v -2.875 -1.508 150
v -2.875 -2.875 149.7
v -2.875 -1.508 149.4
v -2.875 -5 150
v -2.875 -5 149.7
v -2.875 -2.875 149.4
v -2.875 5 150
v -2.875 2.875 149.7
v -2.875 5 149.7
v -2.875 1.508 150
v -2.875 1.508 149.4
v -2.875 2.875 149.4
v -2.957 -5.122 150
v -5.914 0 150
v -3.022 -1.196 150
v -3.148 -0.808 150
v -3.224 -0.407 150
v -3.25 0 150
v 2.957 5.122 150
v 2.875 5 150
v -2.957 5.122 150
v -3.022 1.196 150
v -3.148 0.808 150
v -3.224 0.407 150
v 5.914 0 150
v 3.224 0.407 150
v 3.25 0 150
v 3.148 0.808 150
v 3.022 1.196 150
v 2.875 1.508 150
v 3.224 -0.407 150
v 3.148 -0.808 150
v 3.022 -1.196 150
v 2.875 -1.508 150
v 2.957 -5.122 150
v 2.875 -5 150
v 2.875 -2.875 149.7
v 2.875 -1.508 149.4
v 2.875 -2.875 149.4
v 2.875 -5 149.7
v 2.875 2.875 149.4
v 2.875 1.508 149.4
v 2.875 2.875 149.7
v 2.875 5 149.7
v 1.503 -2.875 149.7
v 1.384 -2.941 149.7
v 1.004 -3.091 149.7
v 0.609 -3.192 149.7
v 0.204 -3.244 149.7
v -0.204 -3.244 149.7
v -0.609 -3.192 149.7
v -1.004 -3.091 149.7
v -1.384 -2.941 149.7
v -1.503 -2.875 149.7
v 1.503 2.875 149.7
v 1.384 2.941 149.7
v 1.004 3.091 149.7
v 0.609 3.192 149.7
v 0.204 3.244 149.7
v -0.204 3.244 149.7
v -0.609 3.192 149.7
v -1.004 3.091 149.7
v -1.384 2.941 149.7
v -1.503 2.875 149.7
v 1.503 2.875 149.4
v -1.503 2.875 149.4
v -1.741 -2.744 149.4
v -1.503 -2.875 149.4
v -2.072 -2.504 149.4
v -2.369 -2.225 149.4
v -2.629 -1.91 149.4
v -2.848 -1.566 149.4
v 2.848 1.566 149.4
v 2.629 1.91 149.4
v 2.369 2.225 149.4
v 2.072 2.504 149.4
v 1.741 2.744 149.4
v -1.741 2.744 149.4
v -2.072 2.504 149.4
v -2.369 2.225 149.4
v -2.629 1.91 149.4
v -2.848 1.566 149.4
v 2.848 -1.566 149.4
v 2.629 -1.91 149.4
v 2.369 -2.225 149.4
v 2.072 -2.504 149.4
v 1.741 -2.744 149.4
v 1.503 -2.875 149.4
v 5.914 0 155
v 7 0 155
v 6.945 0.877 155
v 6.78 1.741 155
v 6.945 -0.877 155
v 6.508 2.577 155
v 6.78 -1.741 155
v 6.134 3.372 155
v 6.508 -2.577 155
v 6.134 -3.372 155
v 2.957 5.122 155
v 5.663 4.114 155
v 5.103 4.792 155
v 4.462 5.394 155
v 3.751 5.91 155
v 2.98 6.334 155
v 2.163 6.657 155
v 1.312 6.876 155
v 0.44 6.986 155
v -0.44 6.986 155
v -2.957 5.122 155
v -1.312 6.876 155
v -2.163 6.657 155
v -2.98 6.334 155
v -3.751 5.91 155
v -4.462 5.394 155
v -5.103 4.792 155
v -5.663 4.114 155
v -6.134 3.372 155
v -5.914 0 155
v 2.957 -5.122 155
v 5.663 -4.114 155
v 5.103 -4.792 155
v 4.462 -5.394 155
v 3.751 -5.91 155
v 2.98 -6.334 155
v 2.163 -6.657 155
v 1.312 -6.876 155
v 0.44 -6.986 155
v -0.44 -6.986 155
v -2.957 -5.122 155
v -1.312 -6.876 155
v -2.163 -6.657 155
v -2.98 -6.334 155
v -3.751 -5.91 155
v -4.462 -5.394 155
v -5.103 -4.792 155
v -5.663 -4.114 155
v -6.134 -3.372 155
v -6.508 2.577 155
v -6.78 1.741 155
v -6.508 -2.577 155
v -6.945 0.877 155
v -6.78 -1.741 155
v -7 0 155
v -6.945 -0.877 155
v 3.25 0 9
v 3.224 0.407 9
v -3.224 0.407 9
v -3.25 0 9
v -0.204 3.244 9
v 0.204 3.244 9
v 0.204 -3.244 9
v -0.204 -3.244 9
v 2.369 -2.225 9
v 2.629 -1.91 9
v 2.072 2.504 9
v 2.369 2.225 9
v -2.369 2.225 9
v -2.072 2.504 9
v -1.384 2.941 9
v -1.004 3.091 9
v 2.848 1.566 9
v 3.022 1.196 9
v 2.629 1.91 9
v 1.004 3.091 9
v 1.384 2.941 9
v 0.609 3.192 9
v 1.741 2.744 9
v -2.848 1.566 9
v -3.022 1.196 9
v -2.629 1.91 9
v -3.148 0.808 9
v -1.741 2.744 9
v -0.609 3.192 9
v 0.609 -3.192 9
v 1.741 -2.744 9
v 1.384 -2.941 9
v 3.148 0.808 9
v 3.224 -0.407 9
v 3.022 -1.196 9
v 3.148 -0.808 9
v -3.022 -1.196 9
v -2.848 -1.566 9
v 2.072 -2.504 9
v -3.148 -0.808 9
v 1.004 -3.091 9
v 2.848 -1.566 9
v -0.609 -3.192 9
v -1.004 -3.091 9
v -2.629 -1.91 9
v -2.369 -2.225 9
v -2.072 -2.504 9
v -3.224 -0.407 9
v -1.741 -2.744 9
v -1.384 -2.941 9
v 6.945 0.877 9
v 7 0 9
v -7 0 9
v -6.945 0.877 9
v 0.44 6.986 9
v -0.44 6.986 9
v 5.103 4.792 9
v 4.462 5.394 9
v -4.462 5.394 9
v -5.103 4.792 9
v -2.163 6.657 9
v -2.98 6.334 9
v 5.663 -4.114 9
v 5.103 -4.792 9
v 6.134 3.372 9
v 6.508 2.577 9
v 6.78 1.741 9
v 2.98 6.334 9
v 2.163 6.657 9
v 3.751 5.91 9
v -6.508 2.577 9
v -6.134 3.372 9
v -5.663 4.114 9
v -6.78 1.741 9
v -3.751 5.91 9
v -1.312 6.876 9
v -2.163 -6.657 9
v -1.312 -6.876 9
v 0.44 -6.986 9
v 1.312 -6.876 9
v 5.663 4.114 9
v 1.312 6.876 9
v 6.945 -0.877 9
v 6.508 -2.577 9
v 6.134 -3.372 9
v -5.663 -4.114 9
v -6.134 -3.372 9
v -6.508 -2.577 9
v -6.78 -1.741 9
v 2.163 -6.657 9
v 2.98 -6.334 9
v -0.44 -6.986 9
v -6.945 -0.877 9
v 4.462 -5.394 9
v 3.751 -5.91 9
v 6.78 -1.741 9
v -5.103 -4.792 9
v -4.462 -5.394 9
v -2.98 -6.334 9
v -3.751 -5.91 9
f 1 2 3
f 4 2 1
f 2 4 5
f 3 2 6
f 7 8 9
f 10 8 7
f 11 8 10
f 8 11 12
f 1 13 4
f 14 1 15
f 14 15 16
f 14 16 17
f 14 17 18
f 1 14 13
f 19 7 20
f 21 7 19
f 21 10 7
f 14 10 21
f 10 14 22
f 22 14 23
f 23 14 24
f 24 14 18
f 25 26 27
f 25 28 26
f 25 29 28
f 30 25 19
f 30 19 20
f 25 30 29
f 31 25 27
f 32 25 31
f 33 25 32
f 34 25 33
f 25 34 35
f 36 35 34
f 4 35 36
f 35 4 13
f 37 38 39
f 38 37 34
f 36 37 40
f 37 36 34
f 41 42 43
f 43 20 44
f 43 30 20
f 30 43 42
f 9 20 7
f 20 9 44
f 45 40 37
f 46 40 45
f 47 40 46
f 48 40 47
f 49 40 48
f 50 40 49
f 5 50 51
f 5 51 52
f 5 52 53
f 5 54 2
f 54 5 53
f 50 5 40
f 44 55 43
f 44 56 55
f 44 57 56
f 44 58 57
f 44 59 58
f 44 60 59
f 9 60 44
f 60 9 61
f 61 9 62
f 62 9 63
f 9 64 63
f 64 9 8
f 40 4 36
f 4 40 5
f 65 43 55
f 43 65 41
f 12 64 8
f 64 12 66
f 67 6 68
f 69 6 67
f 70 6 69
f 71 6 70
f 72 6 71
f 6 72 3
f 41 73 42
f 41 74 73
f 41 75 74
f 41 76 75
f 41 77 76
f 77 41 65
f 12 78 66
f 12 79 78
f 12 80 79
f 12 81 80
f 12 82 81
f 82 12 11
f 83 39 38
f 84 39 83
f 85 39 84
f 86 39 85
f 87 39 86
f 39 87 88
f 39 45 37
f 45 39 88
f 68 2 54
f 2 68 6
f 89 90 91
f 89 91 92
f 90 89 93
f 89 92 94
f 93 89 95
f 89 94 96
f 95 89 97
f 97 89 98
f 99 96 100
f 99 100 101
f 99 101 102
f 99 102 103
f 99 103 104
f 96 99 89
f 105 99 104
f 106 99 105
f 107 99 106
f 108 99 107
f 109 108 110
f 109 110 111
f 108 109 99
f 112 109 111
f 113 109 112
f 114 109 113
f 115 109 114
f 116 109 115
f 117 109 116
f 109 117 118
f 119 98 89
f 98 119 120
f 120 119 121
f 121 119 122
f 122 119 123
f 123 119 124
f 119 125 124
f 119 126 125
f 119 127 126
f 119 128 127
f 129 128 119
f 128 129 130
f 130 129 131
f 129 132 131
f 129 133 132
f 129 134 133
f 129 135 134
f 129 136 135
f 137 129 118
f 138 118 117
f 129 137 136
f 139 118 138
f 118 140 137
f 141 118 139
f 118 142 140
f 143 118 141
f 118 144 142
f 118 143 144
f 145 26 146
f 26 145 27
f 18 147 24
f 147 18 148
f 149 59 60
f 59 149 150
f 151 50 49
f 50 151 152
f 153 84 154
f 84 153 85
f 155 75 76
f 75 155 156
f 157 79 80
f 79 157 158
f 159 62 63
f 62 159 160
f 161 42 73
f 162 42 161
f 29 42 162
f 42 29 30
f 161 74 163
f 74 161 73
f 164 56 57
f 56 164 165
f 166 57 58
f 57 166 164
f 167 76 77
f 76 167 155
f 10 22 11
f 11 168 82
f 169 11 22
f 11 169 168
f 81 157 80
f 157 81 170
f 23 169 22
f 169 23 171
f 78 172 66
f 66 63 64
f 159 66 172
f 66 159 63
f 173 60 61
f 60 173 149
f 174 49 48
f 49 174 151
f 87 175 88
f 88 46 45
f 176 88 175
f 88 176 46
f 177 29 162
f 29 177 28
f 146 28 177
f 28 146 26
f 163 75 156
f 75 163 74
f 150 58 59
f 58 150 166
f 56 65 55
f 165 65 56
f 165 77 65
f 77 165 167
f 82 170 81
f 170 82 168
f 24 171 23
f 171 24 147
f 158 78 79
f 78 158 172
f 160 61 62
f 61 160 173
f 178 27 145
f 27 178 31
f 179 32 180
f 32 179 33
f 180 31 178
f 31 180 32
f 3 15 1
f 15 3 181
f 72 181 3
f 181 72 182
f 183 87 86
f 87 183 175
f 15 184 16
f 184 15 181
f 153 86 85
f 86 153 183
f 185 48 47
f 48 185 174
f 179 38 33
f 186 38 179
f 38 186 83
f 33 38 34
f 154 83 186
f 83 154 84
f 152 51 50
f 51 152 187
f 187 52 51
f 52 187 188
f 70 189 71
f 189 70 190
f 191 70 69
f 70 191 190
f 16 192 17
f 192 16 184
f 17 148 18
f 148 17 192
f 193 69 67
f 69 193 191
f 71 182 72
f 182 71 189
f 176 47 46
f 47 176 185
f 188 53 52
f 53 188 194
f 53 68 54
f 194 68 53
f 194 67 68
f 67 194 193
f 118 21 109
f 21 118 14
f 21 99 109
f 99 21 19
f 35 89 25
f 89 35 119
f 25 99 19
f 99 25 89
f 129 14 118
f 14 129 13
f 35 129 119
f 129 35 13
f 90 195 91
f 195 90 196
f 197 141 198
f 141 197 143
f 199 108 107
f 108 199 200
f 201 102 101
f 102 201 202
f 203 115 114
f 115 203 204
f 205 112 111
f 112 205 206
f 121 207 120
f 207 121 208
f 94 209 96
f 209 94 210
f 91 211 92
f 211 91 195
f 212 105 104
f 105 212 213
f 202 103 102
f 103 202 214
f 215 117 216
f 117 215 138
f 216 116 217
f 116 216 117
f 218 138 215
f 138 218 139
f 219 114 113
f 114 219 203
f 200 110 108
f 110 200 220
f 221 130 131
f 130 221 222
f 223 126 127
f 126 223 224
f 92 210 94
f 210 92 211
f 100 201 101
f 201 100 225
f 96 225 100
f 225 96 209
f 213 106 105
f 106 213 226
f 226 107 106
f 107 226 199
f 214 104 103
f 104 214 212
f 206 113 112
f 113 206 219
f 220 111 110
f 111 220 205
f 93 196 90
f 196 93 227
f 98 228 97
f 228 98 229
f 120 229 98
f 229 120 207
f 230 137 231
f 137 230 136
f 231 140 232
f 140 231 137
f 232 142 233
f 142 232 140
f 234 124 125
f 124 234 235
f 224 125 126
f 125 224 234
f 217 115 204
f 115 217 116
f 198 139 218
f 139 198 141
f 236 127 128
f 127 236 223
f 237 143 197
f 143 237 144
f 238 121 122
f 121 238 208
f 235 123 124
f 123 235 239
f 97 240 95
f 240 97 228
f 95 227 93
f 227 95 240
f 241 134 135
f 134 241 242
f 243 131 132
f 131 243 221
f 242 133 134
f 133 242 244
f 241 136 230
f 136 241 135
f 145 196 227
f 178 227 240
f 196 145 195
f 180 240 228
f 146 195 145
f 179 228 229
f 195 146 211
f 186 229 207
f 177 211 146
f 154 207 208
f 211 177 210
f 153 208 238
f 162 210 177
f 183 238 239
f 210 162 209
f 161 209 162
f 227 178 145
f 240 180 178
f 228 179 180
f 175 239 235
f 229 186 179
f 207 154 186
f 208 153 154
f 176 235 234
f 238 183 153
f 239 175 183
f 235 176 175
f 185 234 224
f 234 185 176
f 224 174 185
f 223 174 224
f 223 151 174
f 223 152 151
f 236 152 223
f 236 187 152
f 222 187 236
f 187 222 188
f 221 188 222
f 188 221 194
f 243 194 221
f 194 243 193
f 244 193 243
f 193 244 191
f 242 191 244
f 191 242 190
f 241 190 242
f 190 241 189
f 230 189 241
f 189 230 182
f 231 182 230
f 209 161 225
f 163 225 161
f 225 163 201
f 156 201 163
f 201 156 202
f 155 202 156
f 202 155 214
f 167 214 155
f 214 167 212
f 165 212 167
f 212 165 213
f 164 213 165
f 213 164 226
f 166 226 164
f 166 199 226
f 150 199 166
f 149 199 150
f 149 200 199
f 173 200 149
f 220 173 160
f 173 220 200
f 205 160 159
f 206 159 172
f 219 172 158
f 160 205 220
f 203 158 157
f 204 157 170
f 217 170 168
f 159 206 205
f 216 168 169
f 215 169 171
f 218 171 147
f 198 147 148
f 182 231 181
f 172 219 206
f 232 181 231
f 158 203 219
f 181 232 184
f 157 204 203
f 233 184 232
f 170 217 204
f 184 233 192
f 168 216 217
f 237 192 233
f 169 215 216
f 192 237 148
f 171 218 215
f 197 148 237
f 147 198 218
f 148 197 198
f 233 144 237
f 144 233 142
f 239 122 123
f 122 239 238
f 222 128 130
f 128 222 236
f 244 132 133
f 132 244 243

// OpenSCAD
$fn = 50;


difference() {
	union() {
		translate(v = [0, 0, 9.0000000000]) {
			cylinder(h = 146, r = 7.0000000000);
		}
	}
	union() {
		translate(v = [0, 0, 155]) {
			rotate(a = [0, 0, 0]) {
				difference() {
					union() {
						#translate(v = [-2.8750000000, -5.0000000000, -5.3000000000]) {
							cube(size = [5.7500000000, 10, 0.3000000000]);
						}
						#translate(v = [-2.8750000000, -2.8750000000, -5.6000000000]) {
							cube(size = [5.7500000000, 5.7500000000, 0.3000000000]);
						}
						#translate(v = [-2.8750000000, -5.0000000000, 0]) {
							cube(size = [5.7500000000, 10, 0.3000000000]);
						}
						#translate(v = [-2.8750000000, -2.8750000000, 0.3000000000]) {
							cube(size = [5.7500000000, 5.7500000000, 0.3000000000]);
						}
						#translate(v = [0, 0, -100.0000000000]) {
							cylinder(h = 200, r = 3.2500000000);
						}
						translate(v = [0, 0, -5]) {
							#linear_extrude(height = 5) {
								polygon(points = [[5.9142500000, 0.0000000000], [2.9571250000, 5.1218907443], [-2.9571250000, 5.1218907443], [-5.9142500000, 0.0000000000], [-2.9571250000, -5.1218907443], [2.9571250000, -5.1218907443]]);
							}
						}
						#translate(v = [-2.8750000000, -5.0000000000, -5.3000000000]) {
							cube(size = [5.7500000000, 10, 0.3000000000]);
						}
						#translate(v = [-2.8750000000, -2.8750000000, -5.6000000000]) {
							cube(size = [5.7500000000, 5.7500000000, 0.3000000000]);
						}
						#translate(v = [-2.8750000000, -5.0000000000, 0]) {
							cube(size = [5.7500000000, 10, 0.3000000000]);
						}
						#translate(v = [-2.8750000000, -2.8750000000, 0.3000000000]) {
							cube(size = [5.7500000000, 5.7500000000, 0.3000000000]);
						}
						#translate(v = [0, 0, -100.0000000000]) {
							cylinder(h = 200, r = 3.2500000000);
						}
						#translate(v = [-2.8750000000, -5.0000000000, -5.3000000000]) {
							cube(size = [5.7500000000, 10, 0.3000000000]);
						}
						#translate(v = [-2.8750000000, -2.8750000000, -5.6000000000]) {
							cube(size = [5.7500000000, 5.7500000000, 0.3000000000]);
						}
						#translate(v = [-2.8750000000, -5.0000000000, 0]) {
							cube(size = [5.7500000000, 10, 0.3000000000]);
						}
						#translate(v = [-2.8750000000, -2.8750000000, 0.3000000000]) {
							cube(size = [5.7500000000, 5.7500000000, 0.3000000000]);
						}
						#translate(v = [0, 0, -100.0000000000]) {
							cylinder(h = 200, r = 3.2500000000);
						}
					}
					union();
				}
			}
		}
		#translate(v = [0, 0, -100.0000000000]) {
			cylinder(h = 200, r = 3.2500000000);
		}
	}
}
